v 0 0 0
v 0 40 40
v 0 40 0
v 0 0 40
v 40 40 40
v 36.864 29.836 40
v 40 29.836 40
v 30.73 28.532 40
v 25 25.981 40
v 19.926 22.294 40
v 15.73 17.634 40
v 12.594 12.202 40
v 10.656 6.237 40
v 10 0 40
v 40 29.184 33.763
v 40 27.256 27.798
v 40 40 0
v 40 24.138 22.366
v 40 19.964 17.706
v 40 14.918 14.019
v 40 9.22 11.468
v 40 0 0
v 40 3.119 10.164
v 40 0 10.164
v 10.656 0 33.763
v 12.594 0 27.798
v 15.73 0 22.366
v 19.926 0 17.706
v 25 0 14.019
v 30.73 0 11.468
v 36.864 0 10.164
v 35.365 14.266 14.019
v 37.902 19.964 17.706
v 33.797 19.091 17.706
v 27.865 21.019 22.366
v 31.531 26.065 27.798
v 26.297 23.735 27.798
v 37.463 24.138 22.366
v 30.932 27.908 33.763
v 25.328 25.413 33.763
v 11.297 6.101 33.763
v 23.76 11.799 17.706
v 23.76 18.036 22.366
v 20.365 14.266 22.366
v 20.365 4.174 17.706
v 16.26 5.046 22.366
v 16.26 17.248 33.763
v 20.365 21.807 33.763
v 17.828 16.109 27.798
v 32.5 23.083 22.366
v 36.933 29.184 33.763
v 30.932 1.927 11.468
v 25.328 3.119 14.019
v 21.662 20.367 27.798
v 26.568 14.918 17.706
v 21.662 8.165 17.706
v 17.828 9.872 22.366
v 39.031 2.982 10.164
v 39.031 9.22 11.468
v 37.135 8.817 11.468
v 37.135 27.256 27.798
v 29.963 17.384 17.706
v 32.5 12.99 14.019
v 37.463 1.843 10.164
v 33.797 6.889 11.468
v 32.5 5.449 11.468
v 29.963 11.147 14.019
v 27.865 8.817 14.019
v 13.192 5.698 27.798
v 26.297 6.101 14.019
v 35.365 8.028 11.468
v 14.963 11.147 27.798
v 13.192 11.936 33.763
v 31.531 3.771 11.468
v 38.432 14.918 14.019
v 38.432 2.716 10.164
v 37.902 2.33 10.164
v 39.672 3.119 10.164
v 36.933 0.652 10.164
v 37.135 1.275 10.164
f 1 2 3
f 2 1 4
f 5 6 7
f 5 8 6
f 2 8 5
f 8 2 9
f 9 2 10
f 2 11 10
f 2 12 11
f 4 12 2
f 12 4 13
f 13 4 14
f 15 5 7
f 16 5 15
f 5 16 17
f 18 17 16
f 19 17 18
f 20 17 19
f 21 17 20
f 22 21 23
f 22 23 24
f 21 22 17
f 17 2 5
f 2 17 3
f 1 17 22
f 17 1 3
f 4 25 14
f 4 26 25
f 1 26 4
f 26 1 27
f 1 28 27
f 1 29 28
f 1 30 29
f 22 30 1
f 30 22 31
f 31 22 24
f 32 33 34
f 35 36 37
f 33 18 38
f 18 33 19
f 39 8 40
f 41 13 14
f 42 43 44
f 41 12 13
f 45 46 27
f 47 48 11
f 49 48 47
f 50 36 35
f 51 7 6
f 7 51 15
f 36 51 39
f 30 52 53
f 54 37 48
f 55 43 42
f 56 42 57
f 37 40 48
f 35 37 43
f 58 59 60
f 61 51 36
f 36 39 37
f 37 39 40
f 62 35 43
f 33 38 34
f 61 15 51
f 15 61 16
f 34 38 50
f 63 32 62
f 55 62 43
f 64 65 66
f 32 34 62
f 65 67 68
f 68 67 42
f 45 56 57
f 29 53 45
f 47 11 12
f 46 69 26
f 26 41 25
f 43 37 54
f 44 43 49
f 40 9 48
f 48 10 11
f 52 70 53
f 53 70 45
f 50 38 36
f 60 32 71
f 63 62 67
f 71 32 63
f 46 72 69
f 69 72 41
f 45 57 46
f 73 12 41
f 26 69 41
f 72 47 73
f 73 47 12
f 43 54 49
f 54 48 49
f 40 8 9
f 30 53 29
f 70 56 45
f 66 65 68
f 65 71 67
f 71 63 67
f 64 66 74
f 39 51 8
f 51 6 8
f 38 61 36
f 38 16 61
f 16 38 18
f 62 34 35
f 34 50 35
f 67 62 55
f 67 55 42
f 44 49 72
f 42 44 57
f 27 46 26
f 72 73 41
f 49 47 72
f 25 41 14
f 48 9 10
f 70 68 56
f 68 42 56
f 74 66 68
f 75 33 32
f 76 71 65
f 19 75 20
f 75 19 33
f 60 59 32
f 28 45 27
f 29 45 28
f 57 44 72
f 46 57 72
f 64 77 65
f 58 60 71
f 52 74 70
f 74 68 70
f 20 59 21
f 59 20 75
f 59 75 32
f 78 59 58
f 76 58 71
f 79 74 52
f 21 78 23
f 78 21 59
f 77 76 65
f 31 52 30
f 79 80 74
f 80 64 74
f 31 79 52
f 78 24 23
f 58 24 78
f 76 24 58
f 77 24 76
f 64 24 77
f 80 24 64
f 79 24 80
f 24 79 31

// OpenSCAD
difference(){
  cube([40, 40, 40], center=false);
  translate([40, 0, 40]){
    sphere(r=30);
  }
}
